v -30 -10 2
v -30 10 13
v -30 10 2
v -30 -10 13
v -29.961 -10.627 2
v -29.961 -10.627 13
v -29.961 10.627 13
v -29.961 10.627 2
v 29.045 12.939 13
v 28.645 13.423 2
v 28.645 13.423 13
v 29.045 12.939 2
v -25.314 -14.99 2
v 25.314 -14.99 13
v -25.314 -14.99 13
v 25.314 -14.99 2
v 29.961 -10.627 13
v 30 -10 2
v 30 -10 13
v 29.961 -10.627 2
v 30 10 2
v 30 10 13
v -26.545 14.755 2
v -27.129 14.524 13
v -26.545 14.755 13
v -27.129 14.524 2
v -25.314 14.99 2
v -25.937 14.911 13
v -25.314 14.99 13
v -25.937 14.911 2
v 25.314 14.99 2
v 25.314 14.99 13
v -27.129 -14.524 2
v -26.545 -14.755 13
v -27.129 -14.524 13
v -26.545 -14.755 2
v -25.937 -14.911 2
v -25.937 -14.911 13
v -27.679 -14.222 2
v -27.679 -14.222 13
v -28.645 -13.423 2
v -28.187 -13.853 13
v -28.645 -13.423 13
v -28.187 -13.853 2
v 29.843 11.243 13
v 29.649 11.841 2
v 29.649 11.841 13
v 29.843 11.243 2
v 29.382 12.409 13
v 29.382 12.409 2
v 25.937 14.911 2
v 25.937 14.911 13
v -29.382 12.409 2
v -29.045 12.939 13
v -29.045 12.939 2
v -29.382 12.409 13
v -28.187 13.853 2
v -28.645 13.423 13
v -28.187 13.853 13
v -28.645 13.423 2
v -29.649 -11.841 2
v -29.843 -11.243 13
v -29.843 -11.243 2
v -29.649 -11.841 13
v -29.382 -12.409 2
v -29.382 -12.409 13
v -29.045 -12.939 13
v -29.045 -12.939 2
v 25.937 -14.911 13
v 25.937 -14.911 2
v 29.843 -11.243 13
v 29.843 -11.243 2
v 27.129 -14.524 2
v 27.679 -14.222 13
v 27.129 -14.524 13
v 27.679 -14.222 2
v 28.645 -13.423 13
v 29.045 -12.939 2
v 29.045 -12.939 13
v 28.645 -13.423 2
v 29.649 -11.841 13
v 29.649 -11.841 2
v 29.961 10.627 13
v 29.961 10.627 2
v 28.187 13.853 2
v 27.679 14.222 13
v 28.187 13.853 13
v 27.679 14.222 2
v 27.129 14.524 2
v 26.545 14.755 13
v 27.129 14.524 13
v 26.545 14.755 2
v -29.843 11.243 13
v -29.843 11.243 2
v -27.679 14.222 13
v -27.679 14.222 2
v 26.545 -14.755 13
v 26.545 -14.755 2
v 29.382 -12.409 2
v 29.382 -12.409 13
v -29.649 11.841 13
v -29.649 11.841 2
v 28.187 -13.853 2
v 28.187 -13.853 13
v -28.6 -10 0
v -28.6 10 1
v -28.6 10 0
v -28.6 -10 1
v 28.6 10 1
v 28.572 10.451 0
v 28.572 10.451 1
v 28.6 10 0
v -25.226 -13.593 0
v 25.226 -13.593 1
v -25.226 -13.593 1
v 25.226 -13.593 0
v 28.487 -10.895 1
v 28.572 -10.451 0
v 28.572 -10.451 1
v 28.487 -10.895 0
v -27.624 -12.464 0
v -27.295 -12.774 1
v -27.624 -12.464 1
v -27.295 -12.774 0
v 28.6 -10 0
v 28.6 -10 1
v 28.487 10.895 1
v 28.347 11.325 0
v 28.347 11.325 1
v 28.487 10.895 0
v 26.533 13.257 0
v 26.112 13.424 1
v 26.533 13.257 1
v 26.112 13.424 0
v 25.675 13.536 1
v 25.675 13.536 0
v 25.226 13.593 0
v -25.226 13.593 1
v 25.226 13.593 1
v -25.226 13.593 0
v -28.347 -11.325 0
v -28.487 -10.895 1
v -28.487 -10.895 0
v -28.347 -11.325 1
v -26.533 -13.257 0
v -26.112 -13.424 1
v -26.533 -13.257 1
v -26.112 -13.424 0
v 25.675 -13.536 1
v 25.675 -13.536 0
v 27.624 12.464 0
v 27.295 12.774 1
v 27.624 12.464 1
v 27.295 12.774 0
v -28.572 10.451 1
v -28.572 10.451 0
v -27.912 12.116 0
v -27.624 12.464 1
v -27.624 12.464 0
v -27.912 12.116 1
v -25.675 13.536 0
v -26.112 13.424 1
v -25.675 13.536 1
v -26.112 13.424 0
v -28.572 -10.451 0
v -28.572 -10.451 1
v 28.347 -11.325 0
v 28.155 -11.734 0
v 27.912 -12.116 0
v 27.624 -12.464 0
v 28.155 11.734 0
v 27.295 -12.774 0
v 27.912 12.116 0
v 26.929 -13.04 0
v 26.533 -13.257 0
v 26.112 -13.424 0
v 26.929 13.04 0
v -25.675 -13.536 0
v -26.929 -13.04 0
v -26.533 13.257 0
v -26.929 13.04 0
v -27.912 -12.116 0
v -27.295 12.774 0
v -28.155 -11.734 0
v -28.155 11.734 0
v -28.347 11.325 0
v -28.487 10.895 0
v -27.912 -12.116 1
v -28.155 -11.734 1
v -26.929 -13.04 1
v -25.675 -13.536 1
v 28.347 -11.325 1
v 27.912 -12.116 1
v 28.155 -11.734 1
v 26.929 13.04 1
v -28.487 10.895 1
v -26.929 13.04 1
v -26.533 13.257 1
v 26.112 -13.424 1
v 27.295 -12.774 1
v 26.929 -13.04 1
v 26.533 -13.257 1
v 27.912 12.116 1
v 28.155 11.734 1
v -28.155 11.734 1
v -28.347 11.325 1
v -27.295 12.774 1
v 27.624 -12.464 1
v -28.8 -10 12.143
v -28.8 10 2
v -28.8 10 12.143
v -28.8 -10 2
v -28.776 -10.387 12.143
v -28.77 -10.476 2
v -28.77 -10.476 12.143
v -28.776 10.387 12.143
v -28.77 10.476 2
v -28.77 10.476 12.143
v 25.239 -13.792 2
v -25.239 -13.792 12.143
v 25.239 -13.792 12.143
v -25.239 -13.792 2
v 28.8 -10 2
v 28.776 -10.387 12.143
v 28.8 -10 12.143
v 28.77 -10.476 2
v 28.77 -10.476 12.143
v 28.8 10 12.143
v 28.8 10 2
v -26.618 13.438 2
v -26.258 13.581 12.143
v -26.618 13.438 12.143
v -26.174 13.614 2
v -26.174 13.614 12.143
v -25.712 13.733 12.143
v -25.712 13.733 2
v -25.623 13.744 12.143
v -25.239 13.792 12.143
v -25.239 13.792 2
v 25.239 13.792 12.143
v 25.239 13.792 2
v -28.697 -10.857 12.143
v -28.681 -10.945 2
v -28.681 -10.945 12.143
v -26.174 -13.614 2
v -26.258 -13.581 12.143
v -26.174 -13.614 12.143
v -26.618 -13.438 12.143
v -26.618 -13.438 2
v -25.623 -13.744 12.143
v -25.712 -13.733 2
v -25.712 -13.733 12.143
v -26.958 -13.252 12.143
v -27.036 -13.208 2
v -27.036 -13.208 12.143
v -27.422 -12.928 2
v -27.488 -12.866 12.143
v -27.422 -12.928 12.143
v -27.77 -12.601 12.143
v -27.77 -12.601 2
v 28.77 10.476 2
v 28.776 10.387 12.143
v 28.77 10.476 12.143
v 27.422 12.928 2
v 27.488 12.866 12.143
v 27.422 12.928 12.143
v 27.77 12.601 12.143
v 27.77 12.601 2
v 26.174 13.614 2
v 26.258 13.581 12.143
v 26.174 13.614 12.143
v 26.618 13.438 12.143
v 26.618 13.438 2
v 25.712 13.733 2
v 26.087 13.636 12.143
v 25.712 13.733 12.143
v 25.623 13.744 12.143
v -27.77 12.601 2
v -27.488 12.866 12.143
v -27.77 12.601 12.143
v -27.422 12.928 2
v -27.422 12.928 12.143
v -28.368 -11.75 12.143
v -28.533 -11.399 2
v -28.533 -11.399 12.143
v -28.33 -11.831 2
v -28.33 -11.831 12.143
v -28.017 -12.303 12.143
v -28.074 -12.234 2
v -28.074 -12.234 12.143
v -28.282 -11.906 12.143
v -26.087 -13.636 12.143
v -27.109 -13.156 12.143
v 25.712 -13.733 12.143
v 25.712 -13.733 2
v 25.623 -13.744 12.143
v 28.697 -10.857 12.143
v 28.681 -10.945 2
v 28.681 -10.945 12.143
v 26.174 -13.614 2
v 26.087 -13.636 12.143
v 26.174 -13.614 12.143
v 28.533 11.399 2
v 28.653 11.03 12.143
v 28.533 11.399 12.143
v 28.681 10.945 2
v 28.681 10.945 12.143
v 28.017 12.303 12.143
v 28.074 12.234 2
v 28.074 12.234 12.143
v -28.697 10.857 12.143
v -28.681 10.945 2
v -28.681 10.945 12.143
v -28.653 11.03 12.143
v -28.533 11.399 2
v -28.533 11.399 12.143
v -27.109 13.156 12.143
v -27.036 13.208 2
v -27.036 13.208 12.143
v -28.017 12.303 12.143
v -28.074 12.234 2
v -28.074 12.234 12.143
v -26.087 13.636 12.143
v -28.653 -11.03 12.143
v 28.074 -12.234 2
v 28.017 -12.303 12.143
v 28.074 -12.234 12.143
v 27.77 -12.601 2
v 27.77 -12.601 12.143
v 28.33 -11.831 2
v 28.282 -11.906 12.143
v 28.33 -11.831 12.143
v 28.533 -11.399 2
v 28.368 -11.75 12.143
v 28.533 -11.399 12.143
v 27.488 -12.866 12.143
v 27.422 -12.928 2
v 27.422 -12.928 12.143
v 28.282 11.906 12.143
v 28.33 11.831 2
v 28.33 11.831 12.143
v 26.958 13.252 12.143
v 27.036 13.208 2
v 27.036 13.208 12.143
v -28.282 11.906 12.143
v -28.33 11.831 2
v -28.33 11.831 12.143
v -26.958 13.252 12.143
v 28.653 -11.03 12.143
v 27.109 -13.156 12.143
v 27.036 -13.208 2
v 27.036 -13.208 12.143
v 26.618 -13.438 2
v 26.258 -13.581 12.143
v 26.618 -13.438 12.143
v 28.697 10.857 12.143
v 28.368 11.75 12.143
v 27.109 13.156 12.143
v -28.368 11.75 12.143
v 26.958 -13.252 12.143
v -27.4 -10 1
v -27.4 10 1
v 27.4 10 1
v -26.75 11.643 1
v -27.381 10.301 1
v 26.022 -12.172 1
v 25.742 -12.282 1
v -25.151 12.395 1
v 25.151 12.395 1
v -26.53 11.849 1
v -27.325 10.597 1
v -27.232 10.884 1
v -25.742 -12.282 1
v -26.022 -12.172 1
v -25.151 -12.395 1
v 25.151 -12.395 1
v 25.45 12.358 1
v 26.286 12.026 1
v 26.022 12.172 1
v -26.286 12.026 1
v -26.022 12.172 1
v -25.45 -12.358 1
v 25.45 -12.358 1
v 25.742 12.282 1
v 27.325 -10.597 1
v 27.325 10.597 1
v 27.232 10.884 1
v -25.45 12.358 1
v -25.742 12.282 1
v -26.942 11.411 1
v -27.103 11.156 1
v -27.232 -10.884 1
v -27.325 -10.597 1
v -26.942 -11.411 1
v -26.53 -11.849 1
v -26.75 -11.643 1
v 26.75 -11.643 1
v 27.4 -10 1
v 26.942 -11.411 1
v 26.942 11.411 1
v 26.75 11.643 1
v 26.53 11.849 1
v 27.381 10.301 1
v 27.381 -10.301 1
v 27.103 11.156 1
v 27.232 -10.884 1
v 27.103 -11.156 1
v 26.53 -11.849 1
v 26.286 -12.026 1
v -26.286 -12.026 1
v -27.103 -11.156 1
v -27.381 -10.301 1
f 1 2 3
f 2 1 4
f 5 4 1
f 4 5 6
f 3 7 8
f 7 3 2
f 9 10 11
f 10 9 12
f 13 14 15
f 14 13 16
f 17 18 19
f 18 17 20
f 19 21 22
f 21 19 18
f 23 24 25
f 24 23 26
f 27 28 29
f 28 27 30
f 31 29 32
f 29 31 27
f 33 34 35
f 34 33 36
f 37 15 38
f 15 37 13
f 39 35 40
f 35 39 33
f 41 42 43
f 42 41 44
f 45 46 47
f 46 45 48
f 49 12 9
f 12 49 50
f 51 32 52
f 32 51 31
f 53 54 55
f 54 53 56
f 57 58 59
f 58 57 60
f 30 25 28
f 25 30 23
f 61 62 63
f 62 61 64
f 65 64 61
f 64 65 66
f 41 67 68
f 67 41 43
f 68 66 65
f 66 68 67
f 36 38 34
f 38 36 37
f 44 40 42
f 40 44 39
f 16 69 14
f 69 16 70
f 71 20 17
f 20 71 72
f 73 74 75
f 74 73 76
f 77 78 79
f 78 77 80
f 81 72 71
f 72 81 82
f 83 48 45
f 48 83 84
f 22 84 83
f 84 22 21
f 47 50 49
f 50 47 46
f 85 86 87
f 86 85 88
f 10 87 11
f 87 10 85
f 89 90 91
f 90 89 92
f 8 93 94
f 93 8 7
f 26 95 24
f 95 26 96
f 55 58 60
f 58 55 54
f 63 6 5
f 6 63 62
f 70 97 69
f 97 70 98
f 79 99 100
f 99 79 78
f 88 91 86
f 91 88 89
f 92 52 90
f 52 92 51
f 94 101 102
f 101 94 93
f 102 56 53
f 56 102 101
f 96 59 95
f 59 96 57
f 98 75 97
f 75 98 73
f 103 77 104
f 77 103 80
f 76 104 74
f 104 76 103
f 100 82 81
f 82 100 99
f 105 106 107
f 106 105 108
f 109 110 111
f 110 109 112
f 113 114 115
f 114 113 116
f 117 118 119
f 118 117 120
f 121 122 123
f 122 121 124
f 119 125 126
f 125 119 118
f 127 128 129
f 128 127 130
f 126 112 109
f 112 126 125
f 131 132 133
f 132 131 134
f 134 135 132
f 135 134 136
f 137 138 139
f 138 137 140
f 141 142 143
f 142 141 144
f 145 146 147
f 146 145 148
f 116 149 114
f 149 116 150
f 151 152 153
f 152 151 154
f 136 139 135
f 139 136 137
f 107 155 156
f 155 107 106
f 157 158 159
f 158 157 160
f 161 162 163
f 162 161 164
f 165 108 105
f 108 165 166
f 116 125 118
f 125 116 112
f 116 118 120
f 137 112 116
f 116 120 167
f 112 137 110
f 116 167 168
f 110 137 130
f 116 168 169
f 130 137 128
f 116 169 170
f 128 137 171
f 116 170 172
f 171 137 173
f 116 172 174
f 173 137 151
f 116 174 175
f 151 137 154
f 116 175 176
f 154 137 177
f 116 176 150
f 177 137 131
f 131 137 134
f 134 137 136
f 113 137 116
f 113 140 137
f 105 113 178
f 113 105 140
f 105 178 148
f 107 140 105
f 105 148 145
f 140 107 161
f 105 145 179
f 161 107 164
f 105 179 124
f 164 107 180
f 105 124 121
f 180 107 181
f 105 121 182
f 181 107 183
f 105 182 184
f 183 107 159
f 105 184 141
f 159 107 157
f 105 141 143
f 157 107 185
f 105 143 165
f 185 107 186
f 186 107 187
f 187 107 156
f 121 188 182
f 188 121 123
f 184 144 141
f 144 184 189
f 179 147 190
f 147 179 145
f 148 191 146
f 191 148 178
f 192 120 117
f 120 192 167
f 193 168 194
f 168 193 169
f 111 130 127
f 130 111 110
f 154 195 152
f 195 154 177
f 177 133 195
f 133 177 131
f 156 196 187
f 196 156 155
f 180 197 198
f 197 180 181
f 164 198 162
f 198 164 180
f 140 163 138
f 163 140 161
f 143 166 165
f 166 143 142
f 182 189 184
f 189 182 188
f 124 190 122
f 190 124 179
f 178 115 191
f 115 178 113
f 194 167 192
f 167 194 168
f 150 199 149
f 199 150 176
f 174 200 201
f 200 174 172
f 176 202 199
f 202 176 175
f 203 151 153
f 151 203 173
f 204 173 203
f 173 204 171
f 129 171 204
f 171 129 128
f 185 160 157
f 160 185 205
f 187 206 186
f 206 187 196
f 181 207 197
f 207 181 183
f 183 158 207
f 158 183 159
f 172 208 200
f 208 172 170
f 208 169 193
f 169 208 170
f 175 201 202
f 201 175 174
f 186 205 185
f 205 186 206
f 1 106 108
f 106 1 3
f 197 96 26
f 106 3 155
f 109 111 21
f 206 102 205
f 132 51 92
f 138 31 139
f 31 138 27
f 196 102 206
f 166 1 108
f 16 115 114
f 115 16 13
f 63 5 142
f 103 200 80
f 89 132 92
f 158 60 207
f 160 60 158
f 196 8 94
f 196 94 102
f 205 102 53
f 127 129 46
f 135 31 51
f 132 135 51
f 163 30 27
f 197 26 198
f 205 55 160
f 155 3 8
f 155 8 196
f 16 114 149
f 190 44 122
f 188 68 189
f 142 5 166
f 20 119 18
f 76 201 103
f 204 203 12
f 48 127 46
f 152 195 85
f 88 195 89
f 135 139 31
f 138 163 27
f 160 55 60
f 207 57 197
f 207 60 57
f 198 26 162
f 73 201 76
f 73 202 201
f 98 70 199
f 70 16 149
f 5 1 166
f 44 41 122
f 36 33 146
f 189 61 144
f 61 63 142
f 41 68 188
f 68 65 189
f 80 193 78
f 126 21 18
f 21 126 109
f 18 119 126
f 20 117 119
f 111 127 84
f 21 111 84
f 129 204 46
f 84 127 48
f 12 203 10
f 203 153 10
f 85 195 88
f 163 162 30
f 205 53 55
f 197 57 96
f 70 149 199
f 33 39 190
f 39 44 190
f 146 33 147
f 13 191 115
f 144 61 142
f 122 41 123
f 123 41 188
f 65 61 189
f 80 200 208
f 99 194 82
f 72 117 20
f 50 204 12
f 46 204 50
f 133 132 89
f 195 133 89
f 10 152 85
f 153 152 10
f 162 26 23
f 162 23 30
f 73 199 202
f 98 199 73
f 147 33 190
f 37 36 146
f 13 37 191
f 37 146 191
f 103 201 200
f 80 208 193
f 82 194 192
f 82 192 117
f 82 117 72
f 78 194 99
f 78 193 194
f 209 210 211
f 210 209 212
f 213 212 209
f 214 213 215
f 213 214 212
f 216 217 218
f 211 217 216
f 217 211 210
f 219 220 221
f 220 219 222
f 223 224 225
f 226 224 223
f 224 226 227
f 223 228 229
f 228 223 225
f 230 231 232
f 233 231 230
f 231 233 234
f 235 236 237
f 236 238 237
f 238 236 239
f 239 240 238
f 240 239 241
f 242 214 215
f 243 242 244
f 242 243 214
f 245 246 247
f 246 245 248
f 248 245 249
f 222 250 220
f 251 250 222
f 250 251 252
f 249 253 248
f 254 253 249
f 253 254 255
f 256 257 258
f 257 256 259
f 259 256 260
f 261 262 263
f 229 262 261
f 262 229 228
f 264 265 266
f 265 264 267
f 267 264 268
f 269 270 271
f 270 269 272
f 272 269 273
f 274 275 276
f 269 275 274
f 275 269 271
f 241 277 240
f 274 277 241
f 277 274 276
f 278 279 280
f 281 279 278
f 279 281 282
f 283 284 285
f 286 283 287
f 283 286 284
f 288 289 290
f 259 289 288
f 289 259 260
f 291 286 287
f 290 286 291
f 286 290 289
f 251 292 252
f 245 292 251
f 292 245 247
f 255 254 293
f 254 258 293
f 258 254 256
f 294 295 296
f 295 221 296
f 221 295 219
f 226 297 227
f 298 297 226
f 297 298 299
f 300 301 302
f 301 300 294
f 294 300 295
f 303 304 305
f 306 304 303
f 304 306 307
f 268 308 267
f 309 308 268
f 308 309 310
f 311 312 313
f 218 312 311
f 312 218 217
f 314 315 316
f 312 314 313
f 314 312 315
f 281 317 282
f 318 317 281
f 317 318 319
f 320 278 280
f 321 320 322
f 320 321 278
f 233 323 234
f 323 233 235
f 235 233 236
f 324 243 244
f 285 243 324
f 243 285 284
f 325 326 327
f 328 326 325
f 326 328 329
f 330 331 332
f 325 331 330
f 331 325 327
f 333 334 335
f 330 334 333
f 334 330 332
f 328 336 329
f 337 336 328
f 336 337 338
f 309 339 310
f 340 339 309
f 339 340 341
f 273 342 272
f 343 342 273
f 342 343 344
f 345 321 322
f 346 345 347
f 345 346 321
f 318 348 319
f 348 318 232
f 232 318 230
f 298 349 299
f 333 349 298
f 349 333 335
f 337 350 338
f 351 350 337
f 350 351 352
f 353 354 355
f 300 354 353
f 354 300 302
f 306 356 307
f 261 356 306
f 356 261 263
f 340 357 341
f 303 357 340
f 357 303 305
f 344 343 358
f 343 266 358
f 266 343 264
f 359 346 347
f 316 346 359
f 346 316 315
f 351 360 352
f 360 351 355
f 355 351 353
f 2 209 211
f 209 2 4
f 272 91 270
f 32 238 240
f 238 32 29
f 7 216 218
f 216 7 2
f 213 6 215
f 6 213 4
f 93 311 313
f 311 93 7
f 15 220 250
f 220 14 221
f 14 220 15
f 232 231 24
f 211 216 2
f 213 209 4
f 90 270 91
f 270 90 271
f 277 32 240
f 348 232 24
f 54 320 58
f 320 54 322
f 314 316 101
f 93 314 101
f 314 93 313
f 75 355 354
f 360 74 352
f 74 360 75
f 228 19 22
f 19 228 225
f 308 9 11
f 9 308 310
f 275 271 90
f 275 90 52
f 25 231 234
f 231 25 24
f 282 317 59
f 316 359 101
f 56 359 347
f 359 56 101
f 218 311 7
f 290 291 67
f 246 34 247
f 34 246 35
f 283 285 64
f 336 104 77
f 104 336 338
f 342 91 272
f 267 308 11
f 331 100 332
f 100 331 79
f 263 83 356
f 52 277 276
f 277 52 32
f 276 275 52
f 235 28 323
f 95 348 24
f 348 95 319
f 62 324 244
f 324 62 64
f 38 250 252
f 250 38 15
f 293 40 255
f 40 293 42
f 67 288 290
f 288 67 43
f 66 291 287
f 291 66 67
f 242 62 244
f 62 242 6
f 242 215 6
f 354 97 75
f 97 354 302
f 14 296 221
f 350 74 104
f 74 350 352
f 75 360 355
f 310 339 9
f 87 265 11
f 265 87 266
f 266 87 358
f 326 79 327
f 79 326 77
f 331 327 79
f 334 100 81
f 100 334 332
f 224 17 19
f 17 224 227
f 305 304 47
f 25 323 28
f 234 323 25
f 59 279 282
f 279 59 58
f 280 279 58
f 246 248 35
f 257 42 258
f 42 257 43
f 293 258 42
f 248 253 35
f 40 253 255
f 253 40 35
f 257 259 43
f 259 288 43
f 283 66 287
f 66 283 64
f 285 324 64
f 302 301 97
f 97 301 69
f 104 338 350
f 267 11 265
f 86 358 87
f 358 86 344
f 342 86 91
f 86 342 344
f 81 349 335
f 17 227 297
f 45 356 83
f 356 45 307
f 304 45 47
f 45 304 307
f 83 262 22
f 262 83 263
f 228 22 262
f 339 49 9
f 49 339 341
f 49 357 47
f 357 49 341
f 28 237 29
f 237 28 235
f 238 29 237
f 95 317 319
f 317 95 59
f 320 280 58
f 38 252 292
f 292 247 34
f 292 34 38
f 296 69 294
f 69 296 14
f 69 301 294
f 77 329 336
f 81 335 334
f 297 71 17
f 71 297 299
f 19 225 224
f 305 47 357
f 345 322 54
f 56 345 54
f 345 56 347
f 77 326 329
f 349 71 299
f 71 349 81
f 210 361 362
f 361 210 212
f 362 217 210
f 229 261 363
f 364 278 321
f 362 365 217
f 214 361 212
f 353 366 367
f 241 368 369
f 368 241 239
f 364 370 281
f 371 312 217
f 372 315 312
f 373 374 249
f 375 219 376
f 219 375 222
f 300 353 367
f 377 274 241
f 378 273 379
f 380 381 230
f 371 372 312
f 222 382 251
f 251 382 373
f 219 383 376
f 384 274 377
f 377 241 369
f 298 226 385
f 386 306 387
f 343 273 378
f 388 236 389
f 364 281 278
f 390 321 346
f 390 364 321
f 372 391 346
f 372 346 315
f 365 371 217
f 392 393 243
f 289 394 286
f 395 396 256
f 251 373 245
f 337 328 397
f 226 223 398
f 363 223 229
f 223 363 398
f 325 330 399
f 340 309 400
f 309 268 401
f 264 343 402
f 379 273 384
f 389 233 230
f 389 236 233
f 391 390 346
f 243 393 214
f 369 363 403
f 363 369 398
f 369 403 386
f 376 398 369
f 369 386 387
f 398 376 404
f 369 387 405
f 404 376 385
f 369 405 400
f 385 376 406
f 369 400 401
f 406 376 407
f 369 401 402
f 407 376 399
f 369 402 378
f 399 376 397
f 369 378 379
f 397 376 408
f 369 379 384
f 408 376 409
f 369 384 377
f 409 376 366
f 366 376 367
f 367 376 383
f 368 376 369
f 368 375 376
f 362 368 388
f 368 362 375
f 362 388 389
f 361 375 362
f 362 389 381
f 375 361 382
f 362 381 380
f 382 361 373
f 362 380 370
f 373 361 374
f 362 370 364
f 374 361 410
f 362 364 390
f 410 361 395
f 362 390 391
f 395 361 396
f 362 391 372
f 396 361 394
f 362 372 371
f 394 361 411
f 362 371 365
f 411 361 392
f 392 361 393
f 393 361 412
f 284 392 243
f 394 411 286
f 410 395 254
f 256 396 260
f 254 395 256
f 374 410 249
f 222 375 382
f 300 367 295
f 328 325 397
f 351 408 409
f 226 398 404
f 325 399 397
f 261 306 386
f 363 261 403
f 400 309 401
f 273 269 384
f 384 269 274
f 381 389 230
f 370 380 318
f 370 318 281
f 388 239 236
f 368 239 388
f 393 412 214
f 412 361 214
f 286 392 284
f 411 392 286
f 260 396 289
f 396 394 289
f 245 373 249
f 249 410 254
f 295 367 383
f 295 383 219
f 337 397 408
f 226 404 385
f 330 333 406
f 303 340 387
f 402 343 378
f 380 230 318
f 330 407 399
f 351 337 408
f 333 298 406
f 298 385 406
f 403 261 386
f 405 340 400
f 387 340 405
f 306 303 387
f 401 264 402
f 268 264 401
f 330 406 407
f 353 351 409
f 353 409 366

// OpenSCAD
$fn = 50;


difference() {
	union() {
		translate(v = [0, 0, 2]) {
			hull() {
				translate(v = [-25.0000000000, 10.0000000000, 0]) {
					cylinder(h = 11, r = 5);
				}
				translate(v = [25.0000000000, 10.0000000000, 0]) {
					cylinder(h = 11, r = 5);
				}
				translate(v = [-25.0000000000, -10.0000000000, 0]) {
					cylinder(h = 11, r = 5);
				}
				translate(v = [25.0000000000, -10.0000000000, 0]) {
					cylinder(h = 11, r = 5);
				}
			}
		}
		hull() {
			translate(v = [-25.0000000000, 10.0000000000, 0]) {
				cylinder(h = 1, r = 3.6000000000);
			}
			translate(v = [25.0000000000, 10.0000000000, 0]) {
				cylinder(h = 1, r = 3.6000000000);
			}
			translate(v = [-25.0000000000, -10.0000000000, 0]) {
				cylinder(h = 1, r = 3.6000000000);
			}
			translate(v = [25.0000000000, -10.0000000000, 0]) {
				cylinder(h = 1, r = 3.6000000000);
			}
		}
		translate(v = [0, 0, 1]) {
			hull() {
				translate(v = [-25.0000000000, 10.0000000000, 0]) {
					cylinder(h = 1, r1 = 3.6000000000, r2 = 5.0000000000);
				}
				translate(v = [25.0000000000, 10.0000000000, 0]) {
					cylinder(h = 1, r1 = 3.6000000000, r2 = 5.0000000000);
				}
				translate(v = [-25.0000000000, -10.0000000000, 0]) {
					cylinder(h = 1, r1 = 3.6000000000, r2 = 5.0000000000);
				}
				translate(v = [25.0000000000, -10.0000000000, 0]) {
					cylinder(h = 1, r1 = 3.6000000000, r2 = 5.0000000000);
				}
			}
		}
	}
	union() {
		translate(v = [0, 0, 2]) {
			#hull() {
				translate(v = [-25.0000000000, 10.0000000000, 0]) {
					cylinder(h = 11, r = 3.8000000000);
				}
				translate(v = [25.0000000000, 10.0000000000, 0]) {
					cylinder(h = 11, r = 3.8000000000);
				}
				translate(v = [-25.0000000000, -10.0000000000, 0]) {
					cylinder(h = 11, r = 3.8000000000);
				}
				translate(v = [25.0000000000, -10.0000000000, 0]) {
					cylinder(h = 11, r = 3.8000000000);
				}
			}
		}
		translate(v = [0, 0, 12]) {
			hull() {
				translate(v = [-25.0000000000, 10.0000000000, 0]) {
					cylinder(h = 1, r1 = 3.6000000000, r2 = 5.0000000000);
				}
				translate(v = [25.0000000000, 10.0000000000, 0]) {
					cylinder(h = 1, r1 = 3.6000000000, r2 = 5.0000000000);
				}
				translate(v = [-25.0000000000, -10.0000000000, 0]) {
					cylinder(h = 1, r1 = 3.6000000000, r2 = 5.0000000000);
				}
				translate(v = [25.0000000000, -10.0000000000, 0]) {
					cylinder(h = 1, r1 = 3.6000000000, r2 = 5.0000000000);
				}
			}
		}
		translate(v = [0, 0, 1]) {
			#hull() {
				translate(v = [-25.0000000000, 10.0000000000, 0]) {
					cylinder(h = 1, r1 = 2.4000000000, r2 = 3.8000000000);
				}
				translate(v = [25.0000000000, 10.0000000000, 0]) {
					cylinder(h = 1, r1 = 2.4000000000, r2 = 3.8000000000);
				}
				translate(v = [-25.0000000000, -10.0000000000, 0]) {
					cylinder(h = 1, r1 = 2.4000000000, r2 = 3.8000000000);
				}
				translate(v = [25.0000000000, -10.0000000000, 0]) {
					cylinder(h = 1, r1 = 2.4000000000, r2 = 3.8000000000);
				}
			}
		}
	}
}
